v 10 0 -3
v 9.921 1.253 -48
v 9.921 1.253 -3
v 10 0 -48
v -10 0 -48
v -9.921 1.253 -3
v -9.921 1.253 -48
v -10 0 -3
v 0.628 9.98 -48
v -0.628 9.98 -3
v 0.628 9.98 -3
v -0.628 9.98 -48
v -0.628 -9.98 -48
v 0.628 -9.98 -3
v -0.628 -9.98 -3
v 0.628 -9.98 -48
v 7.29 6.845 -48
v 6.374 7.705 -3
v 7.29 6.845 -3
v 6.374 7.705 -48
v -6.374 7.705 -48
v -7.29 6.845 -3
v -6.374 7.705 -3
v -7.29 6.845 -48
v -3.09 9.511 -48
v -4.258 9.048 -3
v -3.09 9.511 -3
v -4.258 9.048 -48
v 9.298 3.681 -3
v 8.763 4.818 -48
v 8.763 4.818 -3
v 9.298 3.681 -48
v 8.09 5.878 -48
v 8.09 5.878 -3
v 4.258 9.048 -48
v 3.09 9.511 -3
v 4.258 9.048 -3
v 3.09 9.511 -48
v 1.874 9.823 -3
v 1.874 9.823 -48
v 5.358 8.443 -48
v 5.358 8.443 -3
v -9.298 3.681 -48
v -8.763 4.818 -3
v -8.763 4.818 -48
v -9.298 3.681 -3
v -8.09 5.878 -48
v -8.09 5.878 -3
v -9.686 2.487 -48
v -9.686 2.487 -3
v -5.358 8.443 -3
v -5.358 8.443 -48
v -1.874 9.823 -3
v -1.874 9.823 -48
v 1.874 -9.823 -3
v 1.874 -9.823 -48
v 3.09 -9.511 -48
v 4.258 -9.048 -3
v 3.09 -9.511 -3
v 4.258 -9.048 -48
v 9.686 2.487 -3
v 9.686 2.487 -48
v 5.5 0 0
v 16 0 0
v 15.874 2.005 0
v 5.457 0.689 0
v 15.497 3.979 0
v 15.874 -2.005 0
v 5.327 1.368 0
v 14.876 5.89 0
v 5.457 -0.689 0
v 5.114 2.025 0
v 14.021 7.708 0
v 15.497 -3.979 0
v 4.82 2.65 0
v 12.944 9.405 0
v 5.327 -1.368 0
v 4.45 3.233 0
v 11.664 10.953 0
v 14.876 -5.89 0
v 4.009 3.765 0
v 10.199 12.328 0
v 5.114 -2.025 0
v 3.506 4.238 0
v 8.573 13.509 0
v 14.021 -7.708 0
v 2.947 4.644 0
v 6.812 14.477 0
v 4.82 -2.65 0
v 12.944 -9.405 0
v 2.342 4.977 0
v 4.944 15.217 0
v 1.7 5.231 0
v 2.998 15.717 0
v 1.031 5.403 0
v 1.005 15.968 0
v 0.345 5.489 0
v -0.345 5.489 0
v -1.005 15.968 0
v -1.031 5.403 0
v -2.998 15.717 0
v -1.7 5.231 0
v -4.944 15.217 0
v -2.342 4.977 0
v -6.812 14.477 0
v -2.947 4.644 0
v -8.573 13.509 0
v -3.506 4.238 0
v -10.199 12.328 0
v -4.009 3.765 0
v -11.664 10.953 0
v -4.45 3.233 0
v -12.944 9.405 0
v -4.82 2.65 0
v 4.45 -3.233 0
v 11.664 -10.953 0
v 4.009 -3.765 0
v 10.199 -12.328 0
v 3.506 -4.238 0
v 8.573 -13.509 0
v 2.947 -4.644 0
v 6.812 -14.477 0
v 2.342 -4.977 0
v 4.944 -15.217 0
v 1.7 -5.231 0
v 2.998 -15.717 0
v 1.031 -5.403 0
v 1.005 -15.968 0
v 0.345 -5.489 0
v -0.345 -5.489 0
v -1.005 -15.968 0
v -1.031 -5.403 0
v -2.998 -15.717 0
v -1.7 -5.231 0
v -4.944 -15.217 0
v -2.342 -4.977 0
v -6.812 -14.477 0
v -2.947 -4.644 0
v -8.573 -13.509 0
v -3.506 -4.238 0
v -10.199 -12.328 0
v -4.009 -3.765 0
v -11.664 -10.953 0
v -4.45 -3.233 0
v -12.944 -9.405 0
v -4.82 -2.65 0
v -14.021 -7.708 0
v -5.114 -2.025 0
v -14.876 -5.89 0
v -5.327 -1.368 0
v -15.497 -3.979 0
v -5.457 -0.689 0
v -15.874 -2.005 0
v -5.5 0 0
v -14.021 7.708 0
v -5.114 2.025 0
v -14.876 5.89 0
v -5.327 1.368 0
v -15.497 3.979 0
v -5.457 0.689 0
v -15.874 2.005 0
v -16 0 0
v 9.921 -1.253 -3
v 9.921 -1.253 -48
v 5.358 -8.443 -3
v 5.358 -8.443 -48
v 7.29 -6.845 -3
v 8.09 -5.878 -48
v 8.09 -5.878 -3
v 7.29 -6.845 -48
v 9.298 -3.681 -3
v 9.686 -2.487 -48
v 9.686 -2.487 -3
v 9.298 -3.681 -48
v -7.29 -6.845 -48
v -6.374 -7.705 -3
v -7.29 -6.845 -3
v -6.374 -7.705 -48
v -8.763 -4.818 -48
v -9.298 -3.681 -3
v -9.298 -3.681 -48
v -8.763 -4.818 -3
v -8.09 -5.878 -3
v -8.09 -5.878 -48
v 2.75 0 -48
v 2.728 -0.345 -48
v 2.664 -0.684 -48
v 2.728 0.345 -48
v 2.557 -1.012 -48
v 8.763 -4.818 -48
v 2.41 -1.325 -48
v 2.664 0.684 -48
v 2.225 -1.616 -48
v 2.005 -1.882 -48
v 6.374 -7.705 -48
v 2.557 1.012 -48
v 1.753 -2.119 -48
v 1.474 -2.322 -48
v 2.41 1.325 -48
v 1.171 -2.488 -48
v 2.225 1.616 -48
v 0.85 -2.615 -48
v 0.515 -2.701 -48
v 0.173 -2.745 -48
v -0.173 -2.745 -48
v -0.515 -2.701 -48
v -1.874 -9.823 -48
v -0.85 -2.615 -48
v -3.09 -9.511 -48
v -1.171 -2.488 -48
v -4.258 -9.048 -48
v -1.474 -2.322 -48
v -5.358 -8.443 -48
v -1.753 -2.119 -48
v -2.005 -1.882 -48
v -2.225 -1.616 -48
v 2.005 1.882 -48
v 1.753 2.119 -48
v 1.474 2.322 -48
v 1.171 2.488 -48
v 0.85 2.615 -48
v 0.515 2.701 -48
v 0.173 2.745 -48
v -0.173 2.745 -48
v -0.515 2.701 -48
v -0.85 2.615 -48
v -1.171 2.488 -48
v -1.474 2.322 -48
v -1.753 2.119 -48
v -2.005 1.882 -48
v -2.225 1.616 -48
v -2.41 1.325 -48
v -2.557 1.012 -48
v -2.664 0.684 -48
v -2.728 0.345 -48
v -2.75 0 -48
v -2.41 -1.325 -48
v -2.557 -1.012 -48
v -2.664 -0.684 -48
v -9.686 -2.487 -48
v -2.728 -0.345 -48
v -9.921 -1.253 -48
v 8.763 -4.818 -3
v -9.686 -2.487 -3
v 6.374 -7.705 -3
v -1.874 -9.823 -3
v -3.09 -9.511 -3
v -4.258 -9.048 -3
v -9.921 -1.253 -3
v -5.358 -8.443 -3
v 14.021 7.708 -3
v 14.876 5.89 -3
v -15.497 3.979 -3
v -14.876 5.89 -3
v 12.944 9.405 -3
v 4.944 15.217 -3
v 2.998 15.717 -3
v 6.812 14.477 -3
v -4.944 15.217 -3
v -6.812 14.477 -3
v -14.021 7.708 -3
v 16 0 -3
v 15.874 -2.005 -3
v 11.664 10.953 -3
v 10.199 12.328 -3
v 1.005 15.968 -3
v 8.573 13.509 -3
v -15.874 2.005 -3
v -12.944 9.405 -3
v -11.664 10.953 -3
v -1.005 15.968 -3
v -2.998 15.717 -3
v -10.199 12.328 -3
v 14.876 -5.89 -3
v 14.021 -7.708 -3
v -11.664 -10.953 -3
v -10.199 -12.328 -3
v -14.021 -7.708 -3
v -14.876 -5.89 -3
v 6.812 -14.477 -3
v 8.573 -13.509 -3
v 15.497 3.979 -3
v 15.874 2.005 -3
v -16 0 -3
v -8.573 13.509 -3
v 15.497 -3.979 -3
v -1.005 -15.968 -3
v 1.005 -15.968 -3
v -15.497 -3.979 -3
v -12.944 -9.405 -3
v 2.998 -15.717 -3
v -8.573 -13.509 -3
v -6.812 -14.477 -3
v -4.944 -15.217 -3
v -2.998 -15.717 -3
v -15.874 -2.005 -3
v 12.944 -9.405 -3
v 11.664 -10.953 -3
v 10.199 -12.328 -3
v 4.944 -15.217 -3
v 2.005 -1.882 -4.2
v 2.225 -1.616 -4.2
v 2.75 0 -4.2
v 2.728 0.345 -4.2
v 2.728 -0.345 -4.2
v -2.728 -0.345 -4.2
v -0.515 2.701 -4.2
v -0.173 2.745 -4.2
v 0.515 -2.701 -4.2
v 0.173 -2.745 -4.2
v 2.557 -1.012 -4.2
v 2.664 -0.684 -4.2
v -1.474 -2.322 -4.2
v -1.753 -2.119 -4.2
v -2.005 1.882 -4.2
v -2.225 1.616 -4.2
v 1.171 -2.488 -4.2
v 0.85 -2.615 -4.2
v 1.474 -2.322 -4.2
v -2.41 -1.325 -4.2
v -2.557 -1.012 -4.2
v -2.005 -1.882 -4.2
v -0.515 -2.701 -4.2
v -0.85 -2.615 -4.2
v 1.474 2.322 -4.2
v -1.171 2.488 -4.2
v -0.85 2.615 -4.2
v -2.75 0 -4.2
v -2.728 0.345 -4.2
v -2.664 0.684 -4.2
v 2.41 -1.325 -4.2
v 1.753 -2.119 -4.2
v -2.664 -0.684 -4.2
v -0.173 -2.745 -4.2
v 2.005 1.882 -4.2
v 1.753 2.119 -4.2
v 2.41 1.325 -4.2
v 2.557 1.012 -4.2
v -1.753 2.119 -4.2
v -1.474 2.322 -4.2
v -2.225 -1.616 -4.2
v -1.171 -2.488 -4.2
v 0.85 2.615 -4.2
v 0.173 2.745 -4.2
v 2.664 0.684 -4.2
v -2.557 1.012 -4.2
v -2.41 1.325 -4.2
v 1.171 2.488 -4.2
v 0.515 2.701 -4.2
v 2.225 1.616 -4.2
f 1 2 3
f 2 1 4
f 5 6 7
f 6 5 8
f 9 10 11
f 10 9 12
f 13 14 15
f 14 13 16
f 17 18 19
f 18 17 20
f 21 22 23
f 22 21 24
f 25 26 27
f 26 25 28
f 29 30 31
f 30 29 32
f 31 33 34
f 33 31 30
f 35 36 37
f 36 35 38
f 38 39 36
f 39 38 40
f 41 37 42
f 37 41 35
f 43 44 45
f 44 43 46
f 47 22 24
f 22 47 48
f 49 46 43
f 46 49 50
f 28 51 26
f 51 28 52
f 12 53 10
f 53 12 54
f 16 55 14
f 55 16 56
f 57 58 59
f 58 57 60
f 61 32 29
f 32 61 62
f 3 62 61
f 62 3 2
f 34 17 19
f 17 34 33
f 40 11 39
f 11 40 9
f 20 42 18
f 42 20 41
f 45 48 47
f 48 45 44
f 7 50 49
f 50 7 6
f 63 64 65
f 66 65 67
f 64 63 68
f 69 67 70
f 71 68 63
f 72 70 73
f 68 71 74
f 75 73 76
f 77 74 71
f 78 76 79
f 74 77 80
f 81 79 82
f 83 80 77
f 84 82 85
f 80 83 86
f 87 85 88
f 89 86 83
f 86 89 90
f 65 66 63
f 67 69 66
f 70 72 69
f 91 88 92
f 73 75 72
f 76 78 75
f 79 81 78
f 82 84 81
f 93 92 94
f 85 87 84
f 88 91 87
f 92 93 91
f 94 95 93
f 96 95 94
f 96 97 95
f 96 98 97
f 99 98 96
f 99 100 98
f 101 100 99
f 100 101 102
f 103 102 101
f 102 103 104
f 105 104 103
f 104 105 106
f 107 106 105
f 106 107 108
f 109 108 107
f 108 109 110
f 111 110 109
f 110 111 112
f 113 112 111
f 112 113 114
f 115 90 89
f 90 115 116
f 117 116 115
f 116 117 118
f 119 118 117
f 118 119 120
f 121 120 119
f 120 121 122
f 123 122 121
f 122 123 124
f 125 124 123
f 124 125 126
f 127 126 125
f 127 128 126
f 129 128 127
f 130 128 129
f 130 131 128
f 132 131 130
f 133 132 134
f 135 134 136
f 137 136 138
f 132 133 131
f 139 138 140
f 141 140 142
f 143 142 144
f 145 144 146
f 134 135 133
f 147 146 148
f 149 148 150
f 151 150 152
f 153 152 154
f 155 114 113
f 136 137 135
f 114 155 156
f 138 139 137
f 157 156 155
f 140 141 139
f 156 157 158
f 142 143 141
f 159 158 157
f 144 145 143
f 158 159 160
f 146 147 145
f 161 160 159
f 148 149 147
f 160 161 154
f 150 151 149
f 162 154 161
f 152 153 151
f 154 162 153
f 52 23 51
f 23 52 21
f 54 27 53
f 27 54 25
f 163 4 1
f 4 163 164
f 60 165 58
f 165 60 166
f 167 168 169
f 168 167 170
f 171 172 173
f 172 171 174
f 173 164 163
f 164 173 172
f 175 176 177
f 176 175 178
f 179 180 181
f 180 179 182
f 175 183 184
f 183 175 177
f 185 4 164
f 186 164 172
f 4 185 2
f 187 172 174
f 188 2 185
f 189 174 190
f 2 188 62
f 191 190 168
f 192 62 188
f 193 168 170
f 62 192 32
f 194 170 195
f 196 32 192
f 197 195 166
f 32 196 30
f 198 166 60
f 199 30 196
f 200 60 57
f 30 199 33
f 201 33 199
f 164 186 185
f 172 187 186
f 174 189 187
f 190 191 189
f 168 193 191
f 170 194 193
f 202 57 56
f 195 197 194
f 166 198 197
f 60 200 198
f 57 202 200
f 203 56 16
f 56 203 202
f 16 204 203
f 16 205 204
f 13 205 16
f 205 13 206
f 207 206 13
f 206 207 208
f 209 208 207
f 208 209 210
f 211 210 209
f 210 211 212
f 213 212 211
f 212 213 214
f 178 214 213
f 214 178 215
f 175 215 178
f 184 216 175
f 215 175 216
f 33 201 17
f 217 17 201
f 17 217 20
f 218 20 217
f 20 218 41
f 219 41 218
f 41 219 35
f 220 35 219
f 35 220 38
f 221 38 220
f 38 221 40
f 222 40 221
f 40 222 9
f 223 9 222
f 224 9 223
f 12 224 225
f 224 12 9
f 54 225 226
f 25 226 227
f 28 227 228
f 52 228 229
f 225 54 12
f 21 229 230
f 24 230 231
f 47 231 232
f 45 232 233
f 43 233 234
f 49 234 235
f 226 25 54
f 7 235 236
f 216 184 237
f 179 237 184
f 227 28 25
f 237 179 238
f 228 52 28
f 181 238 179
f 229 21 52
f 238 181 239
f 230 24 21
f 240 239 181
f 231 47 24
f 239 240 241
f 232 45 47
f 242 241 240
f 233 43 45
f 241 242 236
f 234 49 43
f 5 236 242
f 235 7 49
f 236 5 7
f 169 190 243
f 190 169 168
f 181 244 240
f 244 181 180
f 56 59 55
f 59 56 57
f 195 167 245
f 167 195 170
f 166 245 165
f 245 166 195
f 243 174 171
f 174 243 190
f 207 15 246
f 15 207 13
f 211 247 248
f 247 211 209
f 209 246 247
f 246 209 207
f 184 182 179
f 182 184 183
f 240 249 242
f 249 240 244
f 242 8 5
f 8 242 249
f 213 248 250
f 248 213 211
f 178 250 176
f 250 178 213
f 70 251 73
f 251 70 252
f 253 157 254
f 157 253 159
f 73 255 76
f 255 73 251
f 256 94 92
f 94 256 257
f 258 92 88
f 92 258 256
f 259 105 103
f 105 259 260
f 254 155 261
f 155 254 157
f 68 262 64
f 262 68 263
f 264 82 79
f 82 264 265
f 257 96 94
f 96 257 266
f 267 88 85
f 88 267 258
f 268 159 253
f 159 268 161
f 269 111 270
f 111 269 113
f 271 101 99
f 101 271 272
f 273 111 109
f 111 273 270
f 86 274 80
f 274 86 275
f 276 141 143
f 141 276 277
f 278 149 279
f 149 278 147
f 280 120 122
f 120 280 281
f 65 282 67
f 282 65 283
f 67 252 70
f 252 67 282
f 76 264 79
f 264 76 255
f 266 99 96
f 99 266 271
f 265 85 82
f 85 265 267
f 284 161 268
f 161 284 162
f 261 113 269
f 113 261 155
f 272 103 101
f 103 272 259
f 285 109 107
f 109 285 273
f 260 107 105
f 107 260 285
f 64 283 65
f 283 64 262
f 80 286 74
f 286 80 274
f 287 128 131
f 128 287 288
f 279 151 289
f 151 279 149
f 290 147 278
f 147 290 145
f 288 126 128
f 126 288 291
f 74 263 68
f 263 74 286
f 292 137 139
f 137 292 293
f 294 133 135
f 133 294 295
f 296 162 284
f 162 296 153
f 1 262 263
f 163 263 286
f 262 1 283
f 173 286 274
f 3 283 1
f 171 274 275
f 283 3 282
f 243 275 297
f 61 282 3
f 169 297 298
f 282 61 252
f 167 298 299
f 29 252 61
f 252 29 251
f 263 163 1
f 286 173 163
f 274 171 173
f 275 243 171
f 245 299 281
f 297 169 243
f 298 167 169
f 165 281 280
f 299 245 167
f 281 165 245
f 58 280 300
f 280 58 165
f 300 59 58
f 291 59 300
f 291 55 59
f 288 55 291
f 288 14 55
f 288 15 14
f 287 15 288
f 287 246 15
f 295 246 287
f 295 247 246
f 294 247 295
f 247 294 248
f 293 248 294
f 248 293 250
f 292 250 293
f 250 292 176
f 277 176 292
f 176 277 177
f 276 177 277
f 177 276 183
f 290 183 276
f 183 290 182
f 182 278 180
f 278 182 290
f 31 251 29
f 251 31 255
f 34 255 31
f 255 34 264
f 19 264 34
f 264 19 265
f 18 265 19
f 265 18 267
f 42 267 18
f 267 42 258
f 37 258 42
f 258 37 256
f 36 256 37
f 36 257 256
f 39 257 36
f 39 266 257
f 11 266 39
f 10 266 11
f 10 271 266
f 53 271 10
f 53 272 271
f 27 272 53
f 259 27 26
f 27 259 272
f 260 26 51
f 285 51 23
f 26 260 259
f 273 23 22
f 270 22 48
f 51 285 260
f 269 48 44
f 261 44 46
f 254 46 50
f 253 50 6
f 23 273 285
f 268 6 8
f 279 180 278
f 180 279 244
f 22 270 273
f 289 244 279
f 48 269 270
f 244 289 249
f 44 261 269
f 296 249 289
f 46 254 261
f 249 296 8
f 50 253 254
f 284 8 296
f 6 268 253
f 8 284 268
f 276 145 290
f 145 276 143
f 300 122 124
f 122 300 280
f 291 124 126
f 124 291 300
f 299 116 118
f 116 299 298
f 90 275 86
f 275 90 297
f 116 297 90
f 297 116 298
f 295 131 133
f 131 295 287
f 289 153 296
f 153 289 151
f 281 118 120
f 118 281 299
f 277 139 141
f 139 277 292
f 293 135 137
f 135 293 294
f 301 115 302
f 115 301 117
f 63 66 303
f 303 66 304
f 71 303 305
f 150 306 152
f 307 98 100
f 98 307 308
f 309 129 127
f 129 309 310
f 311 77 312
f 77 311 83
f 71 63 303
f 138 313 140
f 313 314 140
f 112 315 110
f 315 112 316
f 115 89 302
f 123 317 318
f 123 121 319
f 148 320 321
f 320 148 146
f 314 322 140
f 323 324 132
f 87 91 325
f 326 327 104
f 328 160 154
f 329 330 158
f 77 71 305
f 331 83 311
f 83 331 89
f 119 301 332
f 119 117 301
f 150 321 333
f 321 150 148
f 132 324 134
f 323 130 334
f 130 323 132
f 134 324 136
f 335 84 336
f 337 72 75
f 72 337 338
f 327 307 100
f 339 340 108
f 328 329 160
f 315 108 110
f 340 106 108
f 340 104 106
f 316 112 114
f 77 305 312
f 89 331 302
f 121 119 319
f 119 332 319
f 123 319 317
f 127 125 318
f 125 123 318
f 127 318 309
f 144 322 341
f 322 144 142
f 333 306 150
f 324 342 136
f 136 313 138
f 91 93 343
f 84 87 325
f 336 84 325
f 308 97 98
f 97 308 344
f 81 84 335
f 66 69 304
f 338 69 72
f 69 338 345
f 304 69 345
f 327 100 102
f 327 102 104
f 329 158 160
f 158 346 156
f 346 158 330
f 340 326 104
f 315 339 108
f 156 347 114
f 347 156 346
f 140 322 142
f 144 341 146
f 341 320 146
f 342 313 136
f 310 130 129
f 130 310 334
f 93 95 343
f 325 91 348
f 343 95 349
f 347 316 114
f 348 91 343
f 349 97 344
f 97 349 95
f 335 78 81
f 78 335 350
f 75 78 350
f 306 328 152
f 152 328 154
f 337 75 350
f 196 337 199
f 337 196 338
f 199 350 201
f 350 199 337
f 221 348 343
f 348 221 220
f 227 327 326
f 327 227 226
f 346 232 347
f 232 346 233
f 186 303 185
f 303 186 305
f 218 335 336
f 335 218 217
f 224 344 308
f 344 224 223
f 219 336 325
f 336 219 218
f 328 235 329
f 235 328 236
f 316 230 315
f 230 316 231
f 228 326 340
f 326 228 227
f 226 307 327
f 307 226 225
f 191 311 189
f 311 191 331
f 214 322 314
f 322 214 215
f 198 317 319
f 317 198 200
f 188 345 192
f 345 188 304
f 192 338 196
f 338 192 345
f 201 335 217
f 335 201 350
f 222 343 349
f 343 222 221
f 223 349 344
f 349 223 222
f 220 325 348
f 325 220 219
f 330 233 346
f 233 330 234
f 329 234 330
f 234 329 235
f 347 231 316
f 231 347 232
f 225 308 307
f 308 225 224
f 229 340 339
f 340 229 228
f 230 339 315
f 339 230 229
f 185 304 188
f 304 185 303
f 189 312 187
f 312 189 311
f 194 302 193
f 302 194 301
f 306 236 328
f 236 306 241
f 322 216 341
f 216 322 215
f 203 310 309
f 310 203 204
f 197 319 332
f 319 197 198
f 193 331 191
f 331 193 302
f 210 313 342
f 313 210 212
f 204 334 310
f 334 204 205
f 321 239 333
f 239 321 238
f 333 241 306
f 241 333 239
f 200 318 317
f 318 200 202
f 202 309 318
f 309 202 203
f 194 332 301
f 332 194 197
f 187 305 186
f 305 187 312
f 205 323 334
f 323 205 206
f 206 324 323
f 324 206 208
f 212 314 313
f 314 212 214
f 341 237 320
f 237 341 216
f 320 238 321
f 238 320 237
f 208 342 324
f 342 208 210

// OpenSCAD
$fn = 50;


difference() {
	union() {
		translate(v = [0, 0, -48.0000000000]) {
			cylinder(h = 48, r = 10.0000000000);
		}
		translate(v = [0, 0, -3.0000000000]) {
			cylinder(h = 3, r = 16.0000000000);
		}
	}
	union() {
		translate(v = [0, 0, 0]) {
			rotate(a = [0, 0, 0]) {
				difference() {
					union() {
						#translate(v = [0, 0, -48.0000000000]) {
							cylinder(h = 48, r = 2.2500000000);
						}
						#translate(v = [0, 0, -4.2000000000]) {
							cylinder(h = 4.2000000000, r1 = 2.7500000000, r2 = 5.5000000000);
						}
						#translate(v = [0, 0, -48.0000000000]) {
							cylinder(h = 48, r = 2.7500000000);
						}
						#translate(v = [0, 0, -48.0000000000]) {
							cylinder(h = 48, r = 2.2500000000);
						}
					}
					union();
				}
			}
		}
	}
}
